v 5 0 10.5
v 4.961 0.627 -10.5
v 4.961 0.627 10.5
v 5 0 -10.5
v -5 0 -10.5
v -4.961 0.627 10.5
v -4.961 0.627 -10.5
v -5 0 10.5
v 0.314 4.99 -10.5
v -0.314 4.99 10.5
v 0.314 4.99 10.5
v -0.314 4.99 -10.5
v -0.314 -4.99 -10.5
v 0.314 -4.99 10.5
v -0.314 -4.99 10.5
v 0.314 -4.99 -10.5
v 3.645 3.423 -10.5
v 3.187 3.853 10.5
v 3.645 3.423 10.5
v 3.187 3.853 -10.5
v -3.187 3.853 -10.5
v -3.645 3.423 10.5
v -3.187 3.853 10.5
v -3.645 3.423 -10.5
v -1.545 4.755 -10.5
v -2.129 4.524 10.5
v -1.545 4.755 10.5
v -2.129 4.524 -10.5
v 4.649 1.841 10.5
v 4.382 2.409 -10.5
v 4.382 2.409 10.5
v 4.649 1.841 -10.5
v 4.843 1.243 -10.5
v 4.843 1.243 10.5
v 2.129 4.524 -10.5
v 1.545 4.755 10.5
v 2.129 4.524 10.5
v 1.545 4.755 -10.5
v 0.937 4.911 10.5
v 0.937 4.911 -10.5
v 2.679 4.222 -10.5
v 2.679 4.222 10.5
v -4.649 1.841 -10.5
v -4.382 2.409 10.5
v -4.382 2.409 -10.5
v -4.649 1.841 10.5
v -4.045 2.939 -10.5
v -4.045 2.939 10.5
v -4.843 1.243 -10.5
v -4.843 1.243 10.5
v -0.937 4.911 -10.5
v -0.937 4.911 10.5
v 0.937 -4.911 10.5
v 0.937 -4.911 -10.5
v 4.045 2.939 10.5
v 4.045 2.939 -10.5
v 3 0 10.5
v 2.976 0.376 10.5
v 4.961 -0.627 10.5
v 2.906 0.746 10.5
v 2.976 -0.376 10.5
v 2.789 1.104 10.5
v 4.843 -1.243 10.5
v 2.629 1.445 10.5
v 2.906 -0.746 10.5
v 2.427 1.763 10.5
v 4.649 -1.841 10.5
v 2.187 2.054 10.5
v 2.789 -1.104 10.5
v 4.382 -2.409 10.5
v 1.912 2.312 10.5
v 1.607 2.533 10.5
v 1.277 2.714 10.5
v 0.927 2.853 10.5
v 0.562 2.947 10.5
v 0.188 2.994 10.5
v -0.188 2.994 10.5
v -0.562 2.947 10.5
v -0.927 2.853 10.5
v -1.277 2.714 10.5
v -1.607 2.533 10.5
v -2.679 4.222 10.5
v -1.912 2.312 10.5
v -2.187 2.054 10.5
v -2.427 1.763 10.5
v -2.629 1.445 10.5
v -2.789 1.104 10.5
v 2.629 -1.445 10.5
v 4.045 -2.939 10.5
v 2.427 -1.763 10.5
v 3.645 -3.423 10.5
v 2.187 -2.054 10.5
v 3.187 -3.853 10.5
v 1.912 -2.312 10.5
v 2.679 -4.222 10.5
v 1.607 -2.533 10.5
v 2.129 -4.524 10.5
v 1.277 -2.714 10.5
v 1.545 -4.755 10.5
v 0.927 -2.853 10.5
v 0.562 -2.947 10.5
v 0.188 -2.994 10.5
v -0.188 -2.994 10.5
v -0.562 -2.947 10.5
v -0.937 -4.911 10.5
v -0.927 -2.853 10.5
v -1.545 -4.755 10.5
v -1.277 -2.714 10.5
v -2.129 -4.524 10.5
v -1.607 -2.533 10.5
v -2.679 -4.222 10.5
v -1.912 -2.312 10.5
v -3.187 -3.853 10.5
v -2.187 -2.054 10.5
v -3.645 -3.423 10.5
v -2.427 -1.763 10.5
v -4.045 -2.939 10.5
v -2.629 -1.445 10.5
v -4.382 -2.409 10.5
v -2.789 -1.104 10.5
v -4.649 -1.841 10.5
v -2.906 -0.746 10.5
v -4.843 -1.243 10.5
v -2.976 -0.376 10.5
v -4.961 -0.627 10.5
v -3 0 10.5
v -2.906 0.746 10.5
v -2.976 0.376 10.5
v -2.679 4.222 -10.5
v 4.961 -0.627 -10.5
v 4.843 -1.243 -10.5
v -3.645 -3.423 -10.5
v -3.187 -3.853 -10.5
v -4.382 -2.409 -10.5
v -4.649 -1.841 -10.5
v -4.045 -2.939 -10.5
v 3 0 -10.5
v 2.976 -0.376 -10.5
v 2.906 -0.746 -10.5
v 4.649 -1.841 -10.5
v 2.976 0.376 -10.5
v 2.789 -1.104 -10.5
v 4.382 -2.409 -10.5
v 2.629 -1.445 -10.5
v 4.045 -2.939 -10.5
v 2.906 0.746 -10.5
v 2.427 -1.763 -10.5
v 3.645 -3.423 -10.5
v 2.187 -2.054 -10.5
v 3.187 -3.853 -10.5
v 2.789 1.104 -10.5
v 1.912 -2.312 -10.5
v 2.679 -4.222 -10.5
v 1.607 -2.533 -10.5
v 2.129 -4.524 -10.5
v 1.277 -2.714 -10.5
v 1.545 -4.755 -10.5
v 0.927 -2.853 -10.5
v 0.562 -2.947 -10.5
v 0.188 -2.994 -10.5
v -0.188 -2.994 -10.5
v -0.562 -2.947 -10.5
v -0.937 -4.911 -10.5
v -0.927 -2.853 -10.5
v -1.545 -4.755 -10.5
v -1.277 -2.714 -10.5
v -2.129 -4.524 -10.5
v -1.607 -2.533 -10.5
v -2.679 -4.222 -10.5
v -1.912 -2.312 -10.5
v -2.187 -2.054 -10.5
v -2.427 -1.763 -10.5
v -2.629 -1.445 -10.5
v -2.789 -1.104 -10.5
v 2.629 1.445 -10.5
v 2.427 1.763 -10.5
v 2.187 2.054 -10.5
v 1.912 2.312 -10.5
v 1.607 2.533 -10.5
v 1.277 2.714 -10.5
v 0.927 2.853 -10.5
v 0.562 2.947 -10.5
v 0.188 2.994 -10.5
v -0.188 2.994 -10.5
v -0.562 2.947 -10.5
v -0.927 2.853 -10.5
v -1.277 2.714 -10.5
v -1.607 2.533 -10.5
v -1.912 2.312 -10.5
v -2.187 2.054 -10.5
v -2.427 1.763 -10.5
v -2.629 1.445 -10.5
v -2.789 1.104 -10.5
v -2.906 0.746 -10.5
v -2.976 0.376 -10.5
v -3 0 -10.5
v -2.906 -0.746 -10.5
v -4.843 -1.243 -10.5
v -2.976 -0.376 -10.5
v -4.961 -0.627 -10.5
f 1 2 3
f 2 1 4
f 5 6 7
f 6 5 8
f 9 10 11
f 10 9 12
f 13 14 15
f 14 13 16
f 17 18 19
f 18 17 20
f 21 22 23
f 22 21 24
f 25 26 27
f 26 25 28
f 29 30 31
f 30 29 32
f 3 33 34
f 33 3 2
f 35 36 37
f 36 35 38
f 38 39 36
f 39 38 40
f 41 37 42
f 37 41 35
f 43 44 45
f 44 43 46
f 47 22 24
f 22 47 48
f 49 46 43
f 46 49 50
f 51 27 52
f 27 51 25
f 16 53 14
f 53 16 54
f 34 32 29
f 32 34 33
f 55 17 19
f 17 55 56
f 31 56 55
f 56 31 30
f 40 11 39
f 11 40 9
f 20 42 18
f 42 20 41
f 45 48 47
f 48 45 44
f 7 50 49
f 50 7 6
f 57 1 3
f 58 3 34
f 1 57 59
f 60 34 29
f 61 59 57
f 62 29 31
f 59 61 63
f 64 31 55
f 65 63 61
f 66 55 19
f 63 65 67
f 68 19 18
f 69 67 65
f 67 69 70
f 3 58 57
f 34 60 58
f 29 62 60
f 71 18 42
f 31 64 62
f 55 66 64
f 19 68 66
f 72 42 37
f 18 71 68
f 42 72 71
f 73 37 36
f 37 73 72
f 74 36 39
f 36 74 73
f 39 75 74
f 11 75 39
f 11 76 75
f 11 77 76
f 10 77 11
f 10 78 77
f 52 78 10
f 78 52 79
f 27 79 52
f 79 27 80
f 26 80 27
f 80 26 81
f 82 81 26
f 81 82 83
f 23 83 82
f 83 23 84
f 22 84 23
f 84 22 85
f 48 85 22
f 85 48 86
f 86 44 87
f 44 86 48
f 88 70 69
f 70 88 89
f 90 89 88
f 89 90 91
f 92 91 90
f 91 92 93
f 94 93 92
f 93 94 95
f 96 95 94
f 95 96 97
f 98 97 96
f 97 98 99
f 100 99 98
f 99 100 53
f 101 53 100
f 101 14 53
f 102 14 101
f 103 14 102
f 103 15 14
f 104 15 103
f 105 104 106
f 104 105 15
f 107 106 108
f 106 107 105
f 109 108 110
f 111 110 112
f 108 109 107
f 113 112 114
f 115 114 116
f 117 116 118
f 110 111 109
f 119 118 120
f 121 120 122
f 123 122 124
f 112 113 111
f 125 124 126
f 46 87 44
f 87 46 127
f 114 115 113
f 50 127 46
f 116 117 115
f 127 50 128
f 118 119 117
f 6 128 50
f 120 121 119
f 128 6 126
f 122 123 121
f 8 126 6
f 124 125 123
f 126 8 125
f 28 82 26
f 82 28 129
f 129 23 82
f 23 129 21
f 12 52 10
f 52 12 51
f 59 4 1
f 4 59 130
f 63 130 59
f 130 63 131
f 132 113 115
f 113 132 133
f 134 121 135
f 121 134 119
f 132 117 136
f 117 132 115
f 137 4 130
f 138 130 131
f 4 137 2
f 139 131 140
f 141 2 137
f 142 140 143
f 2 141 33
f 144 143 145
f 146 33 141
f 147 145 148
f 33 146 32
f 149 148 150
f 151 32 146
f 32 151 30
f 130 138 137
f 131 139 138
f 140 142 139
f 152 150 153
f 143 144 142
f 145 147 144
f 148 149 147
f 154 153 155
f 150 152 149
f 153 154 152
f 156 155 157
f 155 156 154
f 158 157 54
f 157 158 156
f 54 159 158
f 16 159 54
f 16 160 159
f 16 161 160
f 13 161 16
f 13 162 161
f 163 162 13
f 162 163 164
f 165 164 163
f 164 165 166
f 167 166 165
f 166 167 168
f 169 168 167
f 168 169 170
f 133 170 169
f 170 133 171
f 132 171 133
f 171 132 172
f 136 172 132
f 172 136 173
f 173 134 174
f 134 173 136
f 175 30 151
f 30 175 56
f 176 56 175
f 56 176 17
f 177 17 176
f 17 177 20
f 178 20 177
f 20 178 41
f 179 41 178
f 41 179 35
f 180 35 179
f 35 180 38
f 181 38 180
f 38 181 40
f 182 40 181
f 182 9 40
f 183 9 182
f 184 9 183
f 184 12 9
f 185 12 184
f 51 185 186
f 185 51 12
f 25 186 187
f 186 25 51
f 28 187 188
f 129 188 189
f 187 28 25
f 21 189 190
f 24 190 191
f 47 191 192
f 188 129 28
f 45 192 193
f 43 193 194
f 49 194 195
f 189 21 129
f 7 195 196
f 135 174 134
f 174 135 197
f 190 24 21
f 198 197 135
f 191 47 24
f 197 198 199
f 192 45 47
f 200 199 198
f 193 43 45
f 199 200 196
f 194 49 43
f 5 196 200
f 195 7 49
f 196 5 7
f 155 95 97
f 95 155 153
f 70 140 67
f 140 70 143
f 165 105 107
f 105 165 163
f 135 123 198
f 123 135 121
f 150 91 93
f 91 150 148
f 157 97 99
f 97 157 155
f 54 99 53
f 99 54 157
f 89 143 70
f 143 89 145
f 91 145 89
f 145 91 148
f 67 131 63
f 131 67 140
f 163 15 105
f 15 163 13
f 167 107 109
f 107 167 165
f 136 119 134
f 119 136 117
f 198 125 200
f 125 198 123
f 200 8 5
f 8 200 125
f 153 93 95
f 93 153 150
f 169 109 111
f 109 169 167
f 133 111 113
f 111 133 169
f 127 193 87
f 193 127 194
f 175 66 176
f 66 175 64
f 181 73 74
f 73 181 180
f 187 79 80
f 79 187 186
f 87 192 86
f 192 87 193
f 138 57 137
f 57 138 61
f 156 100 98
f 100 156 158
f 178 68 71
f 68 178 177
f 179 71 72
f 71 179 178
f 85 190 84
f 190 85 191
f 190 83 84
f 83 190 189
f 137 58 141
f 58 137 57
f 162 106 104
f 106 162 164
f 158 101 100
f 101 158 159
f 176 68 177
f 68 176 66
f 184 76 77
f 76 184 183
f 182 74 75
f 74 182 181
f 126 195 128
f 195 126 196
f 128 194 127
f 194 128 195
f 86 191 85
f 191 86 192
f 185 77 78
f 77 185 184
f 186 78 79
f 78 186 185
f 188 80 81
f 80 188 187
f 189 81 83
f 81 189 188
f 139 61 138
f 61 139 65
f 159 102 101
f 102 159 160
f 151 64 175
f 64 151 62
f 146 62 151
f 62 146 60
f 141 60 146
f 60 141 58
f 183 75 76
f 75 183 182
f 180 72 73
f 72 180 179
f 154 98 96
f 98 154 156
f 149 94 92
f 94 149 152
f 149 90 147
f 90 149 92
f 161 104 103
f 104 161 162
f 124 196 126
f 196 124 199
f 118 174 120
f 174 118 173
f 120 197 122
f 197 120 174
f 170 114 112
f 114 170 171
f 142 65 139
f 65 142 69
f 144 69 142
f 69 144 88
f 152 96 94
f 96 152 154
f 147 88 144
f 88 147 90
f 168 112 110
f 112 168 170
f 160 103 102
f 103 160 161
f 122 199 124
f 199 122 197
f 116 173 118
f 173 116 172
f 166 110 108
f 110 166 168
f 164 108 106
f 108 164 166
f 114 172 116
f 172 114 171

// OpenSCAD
$fn = 50;


difference() {
	union() {
		translate(v = [0, 0, -10.5000000000]) {
			cylinder(h = 21, r = 5.0000000000);
		}
	}
	union() {
		translate(v = [0, 0, -100.0000000000]) {
			cylinder(h = 200, r = 3);
		}
	}
}
